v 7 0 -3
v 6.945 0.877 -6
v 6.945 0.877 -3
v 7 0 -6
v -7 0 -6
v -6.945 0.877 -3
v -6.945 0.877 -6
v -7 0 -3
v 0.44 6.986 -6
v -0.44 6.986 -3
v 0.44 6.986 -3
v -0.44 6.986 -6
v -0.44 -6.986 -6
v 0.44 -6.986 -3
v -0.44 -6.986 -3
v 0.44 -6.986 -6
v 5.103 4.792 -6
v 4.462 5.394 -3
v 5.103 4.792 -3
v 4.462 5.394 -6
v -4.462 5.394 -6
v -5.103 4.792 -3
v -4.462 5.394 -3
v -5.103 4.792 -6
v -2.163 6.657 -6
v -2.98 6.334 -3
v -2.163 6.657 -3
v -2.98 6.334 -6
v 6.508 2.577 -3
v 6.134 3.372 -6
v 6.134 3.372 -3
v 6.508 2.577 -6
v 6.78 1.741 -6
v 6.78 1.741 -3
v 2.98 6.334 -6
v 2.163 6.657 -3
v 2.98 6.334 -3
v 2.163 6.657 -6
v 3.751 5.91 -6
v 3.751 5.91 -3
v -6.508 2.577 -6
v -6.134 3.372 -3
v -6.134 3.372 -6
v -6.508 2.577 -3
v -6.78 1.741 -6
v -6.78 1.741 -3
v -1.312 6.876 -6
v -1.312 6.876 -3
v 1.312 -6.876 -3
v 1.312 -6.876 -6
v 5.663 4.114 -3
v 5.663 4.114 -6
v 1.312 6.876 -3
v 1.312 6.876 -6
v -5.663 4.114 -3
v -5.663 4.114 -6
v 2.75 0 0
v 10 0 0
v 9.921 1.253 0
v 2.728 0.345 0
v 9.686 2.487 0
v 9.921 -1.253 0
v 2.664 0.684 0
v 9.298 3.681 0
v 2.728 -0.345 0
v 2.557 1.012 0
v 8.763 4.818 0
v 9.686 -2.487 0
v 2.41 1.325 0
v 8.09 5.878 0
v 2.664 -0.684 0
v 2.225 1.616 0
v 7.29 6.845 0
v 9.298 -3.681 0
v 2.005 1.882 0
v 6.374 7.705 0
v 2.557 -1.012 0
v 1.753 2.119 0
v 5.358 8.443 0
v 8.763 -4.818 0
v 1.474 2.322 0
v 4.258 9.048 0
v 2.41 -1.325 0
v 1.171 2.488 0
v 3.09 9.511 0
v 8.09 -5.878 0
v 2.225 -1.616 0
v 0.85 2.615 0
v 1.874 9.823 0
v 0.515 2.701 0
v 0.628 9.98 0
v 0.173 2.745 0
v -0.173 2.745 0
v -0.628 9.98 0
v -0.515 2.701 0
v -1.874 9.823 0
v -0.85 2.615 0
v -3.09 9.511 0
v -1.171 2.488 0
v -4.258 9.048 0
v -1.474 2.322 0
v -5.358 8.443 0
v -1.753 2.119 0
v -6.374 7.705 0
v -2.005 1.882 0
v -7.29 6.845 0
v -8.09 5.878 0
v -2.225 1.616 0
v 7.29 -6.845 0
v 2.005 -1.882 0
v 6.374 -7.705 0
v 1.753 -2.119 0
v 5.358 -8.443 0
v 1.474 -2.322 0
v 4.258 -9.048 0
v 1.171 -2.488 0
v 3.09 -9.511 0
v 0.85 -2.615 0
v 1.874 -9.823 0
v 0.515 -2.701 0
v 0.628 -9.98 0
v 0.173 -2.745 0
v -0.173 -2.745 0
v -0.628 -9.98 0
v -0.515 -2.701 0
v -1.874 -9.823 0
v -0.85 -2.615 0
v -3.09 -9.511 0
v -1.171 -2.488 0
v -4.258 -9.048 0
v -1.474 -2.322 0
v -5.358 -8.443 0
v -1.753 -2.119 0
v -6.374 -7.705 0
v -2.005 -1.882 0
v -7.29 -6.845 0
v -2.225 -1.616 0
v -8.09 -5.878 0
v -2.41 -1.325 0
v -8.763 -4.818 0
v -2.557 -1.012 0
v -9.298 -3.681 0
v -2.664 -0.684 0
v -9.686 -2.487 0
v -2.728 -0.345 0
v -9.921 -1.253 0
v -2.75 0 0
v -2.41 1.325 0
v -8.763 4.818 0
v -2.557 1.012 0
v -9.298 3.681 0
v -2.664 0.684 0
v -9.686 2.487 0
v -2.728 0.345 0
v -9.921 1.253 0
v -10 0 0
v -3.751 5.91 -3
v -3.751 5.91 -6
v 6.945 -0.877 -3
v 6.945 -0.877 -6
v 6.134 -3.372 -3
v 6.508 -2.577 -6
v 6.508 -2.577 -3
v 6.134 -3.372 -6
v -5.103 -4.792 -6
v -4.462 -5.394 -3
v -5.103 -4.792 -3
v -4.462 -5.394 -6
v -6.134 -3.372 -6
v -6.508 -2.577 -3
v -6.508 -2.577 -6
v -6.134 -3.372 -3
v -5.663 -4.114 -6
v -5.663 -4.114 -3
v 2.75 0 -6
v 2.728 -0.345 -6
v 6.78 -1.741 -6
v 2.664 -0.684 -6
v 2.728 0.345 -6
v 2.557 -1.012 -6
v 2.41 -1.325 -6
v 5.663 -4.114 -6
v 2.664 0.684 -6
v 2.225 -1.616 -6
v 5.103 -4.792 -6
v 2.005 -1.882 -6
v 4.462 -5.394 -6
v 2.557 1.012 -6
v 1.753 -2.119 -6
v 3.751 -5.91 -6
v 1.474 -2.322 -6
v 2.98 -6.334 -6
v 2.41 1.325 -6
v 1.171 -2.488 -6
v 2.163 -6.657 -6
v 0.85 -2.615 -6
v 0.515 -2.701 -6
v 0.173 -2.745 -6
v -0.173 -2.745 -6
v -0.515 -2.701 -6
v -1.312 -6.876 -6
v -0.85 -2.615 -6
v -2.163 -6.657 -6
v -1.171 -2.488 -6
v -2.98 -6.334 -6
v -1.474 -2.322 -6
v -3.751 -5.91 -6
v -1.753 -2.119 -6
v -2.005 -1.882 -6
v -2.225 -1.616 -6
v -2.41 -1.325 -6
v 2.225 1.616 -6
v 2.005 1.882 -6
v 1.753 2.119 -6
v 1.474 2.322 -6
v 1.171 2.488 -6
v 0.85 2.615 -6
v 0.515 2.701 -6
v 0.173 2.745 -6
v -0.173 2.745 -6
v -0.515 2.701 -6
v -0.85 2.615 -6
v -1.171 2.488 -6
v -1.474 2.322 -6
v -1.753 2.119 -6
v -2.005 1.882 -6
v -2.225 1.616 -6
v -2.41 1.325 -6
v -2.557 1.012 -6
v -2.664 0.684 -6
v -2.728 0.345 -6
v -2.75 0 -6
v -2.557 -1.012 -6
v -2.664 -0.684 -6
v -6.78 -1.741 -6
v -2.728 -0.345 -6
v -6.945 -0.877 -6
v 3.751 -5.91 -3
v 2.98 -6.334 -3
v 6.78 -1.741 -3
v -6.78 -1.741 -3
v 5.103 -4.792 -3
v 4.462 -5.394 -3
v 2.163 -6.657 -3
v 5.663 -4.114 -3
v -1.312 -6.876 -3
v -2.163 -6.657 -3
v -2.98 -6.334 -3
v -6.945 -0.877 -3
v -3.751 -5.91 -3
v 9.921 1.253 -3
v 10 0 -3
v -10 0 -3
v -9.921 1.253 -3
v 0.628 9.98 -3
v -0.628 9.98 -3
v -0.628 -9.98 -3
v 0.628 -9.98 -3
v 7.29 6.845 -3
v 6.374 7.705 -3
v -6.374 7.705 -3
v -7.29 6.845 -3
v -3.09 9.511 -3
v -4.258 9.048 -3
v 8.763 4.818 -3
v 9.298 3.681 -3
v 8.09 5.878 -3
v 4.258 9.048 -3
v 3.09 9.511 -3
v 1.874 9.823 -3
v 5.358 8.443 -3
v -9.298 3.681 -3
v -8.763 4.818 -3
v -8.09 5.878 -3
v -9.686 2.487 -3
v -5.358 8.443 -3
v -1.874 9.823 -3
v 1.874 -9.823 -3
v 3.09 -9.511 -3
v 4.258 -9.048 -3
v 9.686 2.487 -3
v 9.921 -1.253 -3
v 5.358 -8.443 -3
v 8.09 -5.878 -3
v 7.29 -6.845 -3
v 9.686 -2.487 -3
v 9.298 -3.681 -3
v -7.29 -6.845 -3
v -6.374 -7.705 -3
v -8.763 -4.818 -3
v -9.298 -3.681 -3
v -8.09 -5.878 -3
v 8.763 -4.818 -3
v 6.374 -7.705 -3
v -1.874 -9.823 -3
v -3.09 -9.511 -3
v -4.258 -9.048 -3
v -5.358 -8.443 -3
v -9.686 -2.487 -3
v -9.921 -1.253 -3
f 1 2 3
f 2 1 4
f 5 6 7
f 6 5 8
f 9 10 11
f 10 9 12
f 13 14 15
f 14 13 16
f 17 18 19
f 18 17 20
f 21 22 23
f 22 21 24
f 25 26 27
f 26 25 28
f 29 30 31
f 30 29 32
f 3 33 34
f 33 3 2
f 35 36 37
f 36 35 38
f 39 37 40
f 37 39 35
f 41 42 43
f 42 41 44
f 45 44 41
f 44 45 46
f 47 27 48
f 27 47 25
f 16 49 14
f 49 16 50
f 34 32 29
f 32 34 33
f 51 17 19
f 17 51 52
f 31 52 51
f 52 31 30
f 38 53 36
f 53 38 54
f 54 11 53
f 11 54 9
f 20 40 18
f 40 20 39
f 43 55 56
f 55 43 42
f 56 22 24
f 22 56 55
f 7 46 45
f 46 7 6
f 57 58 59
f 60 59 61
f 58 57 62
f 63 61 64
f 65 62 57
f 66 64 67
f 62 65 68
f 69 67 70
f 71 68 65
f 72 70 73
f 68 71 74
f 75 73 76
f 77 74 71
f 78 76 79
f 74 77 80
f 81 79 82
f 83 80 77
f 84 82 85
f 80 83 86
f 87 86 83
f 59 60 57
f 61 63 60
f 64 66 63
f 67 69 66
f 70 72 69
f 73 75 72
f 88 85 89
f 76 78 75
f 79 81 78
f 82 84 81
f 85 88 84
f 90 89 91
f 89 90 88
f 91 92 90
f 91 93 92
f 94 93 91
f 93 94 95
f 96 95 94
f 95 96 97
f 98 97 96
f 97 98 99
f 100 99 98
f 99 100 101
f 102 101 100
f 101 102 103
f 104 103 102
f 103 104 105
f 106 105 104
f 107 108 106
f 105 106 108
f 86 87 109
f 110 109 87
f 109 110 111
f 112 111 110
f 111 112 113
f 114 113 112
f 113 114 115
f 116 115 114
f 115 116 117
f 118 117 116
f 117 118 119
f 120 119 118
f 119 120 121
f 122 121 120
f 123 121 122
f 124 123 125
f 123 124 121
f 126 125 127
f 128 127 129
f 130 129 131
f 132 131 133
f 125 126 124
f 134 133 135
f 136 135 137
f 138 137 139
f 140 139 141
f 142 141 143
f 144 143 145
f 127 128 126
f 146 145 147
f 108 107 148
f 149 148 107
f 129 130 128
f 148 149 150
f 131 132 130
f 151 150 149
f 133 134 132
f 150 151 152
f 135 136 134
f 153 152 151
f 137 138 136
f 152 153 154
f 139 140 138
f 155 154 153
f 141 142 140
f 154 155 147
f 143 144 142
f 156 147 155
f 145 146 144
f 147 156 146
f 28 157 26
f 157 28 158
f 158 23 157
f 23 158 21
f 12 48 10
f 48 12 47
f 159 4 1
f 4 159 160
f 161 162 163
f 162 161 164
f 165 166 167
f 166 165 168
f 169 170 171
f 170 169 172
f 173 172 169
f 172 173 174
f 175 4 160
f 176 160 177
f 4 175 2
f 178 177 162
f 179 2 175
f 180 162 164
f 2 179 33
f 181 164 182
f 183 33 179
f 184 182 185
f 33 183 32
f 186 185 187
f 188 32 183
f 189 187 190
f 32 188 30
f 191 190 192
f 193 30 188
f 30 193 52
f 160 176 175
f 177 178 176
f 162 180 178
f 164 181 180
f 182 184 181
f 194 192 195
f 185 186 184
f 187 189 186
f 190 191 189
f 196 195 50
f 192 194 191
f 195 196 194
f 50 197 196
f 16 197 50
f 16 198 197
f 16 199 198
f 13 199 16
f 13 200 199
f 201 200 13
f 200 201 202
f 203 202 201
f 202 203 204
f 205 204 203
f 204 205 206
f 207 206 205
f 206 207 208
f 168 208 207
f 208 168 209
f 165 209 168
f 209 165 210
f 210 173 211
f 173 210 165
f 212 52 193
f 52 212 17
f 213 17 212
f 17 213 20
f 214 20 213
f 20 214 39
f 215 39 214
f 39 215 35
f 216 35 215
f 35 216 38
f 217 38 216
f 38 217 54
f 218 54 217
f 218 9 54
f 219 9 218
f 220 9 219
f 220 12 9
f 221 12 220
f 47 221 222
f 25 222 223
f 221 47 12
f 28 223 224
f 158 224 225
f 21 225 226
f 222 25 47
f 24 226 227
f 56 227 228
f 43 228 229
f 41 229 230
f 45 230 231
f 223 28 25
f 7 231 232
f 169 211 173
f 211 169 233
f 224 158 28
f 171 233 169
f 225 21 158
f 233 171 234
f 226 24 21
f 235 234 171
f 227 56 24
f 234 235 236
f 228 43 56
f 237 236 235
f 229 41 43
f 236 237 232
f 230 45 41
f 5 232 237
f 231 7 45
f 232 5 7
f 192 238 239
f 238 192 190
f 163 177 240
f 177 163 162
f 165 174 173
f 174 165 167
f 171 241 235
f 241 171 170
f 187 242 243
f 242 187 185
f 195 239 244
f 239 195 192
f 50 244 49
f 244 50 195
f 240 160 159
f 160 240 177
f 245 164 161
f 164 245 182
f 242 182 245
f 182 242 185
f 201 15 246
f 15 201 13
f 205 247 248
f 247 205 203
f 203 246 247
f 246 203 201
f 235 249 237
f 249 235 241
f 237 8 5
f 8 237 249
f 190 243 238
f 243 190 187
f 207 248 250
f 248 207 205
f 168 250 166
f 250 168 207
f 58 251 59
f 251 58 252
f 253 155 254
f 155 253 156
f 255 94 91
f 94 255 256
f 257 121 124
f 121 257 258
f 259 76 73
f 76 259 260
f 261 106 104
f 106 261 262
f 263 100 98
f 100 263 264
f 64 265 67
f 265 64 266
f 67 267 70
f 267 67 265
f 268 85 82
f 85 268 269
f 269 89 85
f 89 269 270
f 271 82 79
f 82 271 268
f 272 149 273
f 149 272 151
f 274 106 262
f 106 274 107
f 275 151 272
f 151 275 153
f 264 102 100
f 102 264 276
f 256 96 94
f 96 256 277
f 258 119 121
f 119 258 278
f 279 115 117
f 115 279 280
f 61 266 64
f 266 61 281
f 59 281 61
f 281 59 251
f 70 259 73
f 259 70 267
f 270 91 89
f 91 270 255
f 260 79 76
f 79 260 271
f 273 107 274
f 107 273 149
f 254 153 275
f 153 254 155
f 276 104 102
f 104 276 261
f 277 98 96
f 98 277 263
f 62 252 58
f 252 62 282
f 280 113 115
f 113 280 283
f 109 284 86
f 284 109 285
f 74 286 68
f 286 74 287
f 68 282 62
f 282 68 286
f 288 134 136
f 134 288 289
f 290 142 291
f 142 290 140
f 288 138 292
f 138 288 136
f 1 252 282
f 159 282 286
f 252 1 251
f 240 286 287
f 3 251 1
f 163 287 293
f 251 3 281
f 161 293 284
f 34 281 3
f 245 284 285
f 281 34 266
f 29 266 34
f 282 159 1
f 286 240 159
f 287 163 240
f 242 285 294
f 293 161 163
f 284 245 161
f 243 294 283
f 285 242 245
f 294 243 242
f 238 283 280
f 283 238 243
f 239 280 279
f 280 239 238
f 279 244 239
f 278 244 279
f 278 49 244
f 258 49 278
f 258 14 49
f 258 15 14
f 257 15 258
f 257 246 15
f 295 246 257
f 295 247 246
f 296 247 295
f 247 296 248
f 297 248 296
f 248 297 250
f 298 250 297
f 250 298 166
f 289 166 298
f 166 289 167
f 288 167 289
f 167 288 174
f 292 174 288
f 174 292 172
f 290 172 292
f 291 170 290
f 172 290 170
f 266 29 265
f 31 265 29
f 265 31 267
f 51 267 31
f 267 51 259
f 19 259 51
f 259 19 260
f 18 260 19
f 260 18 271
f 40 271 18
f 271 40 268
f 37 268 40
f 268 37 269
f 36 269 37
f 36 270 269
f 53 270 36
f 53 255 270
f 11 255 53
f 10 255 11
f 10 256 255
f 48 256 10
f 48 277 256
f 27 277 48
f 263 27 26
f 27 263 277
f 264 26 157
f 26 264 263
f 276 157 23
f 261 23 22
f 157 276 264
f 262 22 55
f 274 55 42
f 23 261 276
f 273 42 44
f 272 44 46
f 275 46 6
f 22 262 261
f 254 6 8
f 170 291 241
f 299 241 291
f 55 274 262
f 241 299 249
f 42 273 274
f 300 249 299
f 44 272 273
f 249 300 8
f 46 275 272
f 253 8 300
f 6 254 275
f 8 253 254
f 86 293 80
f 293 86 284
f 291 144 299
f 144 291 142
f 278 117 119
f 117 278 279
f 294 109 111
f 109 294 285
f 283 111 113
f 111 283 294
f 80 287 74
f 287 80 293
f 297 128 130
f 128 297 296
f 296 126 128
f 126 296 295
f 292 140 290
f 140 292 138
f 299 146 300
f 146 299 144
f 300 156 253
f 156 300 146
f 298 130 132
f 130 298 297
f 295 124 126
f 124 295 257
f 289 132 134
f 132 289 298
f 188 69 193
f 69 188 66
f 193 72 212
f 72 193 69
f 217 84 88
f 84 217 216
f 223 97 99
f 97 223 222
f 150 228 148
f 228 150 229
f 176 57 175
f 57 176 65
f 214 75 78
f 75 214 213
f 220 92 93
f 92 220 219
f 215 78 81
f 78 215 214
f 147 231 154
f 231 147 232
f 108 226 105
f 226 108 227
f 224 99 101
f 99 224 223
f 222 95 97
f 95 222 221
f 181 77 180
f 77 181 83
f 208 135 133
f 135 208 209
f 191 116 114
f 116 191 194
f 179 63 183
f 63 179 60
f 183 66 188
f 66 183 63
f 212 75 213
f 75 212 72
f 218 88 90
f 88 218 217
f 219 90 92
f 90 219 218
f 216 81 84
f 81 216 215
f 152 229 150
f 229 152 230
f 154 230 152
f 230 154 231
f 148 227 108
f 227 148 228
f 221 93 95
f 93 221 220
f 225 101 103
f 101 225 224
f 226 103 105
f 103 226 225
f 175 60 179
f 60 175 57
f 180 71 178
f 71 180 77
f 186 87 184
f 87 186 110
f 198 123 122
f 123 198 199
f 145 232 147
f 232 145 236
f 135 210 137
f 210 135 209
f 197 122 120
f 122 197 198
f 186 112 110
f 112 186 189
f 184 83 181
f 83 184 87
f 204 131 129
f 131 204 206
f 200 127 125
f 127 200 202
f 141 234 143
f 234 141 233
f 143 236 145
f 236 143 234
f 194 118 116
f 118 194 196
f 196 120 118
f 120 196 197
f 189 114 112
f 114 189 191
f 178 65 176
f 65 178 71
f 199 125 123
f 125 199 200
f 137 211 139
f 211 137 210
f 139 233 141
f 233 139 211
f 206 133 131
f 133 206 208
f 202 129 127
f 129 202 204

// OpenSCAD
$fn = 50;


difference() {
	union() {
		translate(v = [0, 0, -6.0000000000]) {
			cylinder(h = 6, r = 7.0000000000);
		}
		translate(v = [0, 0, -3.0000000000]) {
			cylinder(h = 3, r = 10.0000000000);
		}
	}
	union() {
		#translate(v = [0, 0, -6]) {
			cylinder(h = 6, r = 2.7500000000);
		}
	}
}
